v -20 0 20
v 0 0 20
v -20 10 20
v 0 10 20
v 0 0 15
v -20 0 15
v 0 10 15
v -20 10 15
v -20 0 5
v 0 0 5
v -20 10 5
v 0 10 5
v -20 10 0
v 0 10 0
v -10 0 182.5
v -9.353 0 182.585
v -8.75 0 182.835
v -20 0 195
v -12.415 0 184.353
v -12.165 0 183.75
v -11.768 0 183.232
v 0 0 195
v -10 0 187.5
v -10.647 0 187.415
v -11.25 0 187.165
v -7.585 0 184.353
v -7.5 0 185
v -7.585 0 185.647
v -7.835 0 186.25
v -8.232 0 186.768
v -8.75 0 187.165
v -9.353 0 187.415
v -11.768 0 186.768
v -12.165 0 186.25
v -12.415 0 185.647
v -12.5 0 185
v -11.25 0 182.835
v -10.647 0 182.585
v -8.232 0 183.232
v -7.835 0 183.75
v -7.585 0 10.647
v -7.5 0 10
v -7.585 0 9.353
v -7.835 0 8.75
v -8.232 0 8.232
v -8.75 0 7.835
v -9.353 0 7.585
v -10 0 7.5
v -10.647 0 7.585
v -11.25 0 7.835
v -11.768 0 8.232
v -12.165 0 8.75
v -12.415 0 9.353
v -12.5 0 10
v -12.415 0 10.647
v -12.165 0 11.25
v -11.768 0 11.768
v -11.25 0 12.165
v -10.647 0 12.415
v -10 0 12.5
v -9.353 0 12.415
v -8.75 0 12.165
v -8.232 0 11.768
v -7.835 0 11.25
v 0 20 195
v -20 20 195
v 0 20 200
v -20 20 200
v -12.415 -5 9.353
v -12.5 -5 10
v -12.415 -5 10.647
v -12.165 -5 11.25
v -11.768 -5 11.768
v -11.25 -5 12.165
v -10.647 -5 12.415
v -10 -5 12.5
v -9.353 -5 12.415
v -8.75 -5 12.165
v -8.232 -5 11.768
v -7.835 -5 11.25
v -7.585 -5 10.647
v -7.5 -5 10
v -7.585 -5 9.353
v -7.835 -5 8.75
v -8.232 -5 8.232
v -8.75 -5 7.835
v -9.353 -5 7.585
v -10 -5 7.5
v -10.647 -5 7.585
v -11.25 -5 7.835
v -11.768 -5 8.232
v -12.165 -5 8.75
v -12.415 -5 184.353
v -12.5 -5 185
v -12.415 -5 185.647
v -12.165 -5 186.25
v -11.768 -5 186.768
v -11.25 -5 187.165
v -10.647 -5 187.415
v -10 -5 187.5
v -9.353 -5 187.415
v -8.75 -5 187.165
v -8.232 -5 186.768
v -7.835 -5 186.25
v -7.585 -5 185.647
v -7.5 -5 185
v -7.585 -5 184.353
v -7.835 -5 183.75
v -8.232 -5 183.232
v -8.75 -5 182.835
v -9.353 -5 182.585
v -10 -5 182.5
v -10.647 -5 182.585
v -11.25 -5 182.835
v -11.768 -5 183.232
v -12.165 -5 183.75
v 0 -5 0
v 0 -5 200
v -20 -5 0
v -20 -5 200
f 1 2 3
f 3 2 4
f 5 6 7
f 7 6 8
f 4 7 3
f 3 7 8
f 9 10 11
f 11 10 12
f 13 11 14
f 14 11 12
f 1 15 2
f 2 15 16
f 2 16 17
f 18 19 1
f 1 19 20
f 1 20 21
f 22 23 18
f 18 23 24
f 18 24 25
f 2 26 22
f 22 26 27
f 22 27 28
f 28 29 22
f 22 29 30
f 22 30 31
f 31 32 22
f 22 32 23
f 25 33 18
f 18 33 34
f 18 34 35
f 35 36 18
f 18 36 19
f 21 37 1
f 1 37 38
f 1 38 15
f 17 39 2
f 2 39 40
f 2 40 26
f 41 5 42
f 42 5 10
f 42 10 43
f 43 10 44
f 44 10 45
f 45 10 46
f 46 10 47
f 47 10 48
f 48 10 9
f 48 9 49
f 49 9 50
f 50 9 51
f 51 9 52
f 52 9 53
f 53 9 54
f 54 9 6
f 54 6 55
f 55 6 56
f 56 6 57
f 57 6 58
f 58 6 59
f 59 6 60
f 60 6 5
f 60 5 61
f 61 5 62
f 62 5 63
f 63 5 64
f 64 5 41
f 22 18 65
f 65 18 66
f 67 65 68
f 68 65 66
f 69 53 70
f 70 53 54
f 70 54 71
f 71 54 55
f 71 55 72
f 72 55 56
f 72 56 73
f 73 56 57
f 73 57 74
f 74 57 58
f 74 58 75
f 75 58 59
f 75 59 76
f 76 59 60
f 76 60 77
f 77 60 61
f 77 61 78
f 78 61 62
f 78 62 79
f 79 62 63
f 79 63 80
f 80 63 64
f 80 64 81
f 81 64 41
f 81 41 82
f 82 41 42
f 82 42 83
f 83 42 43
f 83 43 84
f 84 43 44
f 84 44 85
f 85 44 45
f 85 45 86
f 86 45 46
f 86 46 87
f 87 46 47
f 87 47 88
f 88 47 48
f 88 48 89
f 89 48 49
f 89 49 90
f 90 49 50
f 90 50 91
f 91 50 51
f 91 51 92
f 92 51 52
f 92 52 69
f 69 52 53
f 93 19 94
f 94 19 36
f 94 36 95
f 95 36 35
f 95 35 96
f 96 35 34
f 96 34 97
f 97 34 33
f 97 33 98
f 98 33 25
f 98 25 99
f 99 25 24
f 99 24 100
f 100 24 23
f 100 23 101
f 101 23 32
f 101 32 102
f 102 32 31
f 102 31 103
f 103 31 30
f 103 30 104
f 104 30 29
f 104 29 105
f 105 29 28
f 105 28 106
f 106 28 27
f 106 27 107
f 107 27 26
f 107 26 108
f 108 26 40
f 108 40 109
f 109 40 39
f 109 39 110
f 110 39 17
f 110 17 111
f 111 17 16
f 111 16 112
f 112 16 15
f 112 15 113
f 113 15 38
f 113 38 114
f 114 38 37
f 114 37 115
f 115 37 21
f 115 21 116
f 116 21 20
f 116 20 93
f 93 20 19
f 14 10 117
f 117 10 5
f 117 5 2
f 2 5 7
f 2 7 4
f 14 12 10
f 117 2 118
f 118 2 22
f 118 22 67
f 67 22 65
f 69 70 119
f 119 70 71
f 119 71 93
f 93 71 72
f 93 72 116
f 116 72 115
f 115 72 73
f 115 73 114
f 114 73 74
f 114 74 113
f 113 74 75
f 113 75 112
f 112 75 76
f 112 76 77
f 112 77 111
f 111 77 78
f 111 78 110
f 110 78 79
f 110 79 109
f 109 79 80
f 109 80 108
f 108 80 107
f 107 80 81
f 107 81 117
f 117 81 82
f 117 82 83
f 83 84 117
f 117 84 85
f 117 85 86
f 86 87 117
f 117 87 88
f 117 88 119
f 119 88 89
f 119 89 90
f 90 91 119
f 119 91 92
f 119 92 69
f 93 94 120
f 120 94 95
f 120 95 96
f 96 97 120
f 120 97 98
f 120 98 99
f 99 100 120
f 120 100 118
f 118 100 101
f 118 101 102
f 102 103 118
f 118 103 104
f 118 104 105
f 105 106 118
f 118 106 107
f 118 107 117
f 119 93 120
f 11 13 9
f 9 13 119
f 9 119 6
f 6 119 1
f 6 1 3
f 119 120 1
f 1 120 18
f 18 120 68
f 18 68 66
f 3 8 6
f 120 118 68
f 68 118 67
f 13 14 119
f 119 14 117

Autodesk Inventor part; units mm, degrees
ref_plane "YZ Plane" through (0, 0, 0) normal (1, 0, 0) x (0, 1, 0)
ref_plane "XZ Plane" through (0, 0, 0) normal (0, 1, 0) x (-1, 0, 0)
ref_plane "XY Plane" through (0, 0, 0) normal (0, 0, 1) x (1, 0, 0)
sketch "Boceto1" plane through (0, 0, 0) normal (0, 0, 1) x (1, 0, 0)
  line L0 (0, 0) -> (-20, 0)
  line L1 (-20, 0) -> (-20, -5)
  line L2 (-20, -5) -> (0, -5)
  line L3 (0, -5) -> (0, 0)
  dimension "d0" = 20
  dimension "d1" = 5
extrude "Extrusión1" add sketch "Boceto1" along normal blind 200
sketch "Boceto2" plane through (-20, 0, 0) normal (0, 1, 0) x (1, 0, 0)
  circle A0 centre (10, -185) radius 2.5
  circle A1 centre (10, -10) radius 2.5
  line L0 (0, 0) -> (0, -200) projected
  line L1 (0, -15) -> (20, -15) construction
  line L2 (20, 0) -> (0, 0) construction
  dimension "d4" = 5
  dimension "d5" = 5
  dimension "d6" = 10
  dimension "d7" = 10
  dimension "d8" = 15
  dimension "d9" = 10
  dimension "d10" = 170
extrude "Extrusión2" cut sketch "Boceto2" against normal blind 200
sketch "Boceto3" plane through (-20, 0, 0) normal (0, 1, 0) x (1, 0, 0)
  line L0 (20, -200) -> (0, -200) projected
  line L1 (20, 0) -> (20, -200) projected
  line L2 (0, -200) -> (20, -200)
  line L3 (20, -200) -> (20, -195)
  line L4 (20, -195) -> (0, -195)
  line L5 (0, -195) -> (0, -200)
  dimension "d13" = 5
extrude "Extrusión3" add sketch "Boceto3" along normal blind 20
sketch "Boceto4" plane through (-20, 0, 0) normal (0, 1, 0) x (1, 0, 0)
  line L0 (20, 0) -> (20, -200) projected
  line L1 (0, 0) -> (20, 0)
  line L2 (20, 0) -> (20, -5)
  line L3 (20, -5) -> (0, -5)
  line L4 (0, -5) -> (0, 0)
  line L5 (0, 0) -> (0, -200) projected
  line L6 (0, -15) -> (20, -15)
  line L7 (20, -15) -> (20, -20)
  line L8 (20, -20) -> (0, -20)
  line L9 (0, -20) -> (0, -15)
  dimension "d16" = 5
  dimension "d17" = 5
  dimension "d18" = 10
extrude "Extrusión4" add sketch "Boceto4" along normal blind 10 contours L0 L3 L4 L1 | L0 L8 L5 L6
thread "Rosca1" size "M5x0.8" class "6H" standard "ANSI Metric M Profile" full length
thread "Rosca2" size "M5x0.8" class "6H" standard "ANSI Metric M Profile" full length
properties part number "Conexión - C15_3DPrint"
